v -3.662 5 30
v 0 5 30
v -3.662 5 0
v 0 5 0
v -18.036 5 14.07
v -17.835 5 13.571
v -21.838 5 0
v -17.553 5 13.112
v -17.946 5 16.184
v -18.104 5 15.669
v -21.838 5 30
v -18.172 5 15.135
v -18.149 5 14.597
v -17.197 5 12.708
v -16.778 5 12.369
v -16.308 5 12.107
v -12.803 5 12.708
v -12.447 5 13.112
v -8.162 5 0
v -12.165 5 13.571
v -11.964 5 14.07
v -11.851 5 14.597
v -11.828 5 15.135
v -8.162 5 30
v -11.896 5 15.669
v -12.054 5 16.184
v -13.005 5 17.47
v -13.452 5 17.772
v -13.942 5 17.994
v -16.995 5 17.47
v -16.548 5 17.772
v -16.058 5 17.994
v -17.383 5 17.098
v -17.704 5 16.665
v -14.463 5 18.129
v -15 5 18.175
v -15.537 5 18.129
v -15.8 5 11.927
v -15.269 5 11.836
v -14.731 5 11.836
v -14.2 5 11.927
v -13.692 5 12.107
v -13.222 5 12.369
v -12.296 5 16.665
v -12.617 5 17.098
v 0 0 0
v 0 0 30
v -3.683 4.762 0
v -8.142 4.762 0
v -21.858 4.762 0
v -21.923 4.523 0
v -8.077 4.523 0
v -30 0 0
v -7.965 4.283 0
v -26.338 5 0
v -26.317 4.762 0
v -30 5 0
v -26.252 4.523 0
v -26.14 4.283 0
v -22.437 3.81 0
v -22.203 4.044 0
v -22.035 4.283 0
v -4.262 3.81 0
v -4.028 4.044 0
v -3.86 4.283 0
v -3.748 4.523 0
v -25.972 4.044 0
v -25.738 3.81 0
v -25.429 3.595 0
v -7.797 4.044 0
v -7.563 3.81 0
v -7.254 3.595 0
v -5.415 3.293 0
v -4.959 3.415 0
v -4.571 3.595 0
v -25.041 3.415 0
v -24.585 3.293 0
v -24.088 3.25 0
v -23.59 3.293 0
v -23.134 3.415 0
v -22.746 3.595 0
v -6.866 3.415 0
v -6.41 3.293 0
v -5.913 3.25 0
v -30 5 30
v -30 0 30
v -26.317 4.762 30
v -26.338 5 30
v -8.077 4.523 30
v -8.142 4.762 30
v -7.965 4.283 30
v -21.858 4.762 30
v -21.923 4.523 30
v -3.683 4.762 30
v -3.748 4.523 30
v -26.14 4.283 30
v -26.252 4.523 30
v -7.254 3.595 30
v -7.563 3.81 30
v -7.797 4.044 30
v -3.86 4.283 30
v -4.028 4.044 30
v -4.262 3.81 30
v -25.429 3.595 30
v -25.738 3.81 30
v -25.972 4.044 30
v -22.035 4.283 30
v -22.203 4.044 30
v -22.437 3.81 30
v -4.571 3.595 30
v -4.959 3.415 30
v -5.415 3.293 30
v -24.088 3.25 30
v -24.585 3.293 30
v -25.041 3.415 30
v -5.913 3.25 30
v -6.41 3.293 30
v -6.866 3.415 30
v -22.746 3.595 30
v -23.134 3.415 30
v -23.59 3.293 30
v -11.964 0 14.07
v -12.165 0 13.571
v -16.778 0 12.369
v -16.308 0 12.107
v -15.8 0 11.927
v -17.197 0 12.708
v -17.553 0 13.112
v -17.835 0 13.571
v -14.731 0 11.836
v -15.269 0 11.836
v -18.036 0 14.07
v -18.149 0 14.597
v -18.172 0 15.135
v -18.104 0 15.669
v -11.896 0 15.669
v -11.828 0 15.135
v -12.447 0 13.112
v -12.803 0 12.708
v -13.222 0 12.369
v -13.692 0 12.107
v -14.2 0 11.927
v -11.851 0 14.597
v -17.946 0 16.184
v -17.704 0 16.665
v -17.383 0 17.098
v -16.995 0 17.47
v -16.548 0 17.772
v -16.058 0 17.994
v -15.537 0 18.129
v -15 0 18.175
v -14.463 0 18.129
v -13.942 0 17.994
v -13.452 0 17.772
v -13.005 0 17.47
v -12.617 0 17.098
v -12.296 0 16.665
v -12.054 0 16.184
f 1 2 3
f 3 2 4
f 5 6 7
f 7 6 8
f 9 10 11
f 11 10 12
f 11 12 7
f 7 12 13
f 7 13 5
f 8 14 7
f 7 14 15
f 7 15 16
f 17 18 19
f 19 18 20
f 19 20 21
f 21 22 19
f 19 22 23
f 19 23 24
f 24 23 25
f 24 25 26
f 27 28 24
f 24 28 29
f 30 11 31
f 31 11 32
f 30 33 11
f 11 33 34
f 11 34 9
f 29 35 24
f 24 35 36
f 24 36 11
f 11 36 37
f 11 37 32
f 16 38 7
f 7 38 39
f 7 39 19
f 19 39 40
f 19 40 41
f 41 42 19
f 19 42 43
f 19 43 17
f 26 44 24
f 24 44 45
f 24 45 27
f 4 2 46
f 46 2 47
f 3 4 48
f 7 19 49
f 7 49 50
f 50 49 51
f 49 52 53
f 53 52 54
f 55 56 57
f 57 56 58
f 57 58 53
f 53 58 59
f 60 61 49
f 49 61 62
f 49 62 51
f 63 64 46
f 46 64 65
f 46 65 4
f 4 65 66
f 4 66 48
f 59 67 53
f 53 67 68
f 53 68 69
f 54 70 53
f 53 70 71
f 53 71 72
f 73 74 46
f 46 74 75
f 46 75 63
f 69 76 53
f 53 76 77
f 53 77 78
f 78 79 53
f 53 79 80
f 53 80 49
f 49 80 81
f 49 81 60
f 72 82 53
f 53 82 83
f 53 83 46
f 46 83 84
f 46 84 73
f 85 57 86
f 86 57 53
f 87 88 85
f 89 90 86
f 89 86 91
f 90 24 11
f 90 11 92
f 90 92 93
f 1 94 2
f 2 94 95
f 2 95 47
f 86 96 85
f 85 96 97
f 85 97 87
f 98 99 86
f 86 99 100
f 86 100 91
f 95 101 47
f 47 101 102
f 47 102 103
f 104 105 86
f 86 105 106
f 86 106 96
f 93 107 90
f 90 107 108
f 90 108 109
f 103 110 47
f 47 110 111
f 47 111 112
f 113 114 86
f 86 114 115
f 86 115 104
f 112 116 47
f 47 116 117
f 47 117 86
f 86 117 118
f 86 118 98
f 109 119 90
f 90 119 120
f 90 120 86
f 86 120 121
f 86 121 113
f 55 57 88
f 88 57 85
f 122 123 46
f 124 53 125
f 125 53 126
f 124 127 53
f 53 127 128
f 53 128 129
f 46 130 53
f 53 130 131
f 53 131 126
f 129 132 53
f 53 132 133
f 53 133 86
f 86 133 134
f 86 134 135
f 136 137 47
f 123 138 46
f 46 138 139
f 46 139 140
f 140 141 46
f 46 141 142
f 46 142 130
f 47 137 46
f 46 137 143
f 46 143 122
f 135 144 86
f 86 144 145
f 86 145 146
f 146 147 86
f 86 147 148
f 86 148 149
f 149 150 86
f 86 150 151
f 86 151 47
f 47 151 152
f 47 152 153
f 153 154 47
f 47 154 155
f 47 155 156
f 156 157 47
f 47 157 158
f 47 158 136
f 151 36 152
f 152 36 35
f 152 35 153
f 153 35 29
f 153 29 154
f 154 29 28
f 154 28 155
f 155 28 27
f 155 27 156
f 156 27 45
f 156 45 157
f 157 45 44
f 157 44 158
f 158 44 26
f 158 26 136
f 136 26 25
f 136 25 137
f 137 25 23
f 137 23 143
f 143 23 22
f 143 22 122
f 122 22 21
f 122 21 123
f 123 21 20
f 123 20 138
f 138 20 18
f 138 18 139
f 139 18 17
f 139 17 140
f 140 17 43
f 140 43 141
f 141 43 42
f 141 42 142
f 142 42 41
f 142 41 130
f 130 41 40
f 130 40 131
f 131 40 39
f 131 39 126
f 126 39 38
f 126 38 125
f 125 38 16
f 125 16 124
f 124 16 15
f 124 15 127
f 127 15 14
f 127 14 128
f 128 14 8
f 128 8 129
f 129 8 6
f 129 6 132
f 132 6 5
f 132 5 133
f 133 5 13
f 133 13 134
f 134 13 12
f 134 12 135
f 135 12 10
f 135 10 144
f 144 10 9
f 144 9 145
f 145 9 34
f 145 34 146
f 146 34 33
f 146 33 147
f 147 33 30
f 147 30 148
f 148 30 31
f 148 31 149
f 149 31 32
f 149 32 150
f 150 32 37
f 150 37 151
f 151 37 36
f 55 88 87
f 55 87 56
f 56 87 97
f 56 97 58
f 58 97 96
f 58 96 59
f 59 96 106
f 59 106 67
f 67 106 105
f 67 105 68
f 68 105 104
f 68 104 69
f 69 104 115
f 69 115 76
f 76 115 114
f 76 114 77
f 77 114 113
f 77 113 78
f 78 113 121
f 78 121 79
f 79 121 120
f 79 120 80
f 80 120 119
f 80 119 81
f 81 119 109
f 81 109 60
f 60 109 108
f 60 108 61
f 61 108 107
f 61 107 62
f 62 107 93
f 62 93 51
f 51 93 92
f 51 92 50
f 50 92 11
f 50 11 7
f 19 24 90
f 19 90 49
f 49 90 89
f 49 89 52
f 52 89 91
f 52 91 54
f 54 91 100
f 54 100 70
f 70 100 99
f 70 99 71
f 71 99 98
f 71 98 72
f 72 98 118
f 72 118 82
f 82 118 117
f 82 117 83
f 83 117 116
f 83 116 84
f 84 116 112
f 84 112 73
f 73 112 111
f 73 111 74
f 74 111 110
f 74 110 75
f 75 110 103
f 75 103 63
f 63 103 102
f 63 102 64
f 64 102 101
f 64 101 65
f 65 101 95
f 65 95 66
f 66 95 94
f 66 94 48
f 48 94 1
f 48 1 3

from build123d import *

# Parameters (mm, degrees)
SKETCH1_W           = 30
SKETCH1_H           = 30
BOSS_EXTRUDE1_DEPTH = 5
SKETCH2_R           = 3.175
CUT_EXTRUDE1_DEPTH  = 5
SKETCH3_RX          = 2.25
SKETCH3_RY          = 1.75
CUT_EXTRUDE3_DEPTH  = 30


with BuildPart() as part:
    # Sketch1 → Boss-Extrude1 (new body)
    with BuildSketch(Plane(origin=(0, 0, 0), x_dir=(1, 0, 0), z_dir=(0, 1, 0))):
        with Locations((-15, -15)):
            Rectangle(SKETCH1_W, SKETCH1_H)
    extrude(amount=BOSS_EXTRUDE1_DEPTH)

    # Sketch2 → Cut-Extrude1 (cut)
    with BuildSketch(Plane(origin=(0, 5, 0), x_dir=(1, 0, 0), z_dir=(0, 1, 0))):
        with Locations((-15, -15)):
            Circle(SKETCH2_R)
    extrude(amount=-CUT_EXTRUDE1_DEPTH, mode=Mode.SUBTRACT)

    # Sketch3 → Cut-Extrude3 (cut)
    with BuildSketch(Plane.XY.offset(30)):
        with Locations(Location((-24.0875, 5), (0, 0, 180))):
            Ellipse(SKETCH3_RX, SKETCH3_RY)
        with Locations(Location((-5.9125, 5), (0, 0, 180))):
            Ellipse(SKETCH3_RX, SKETCH3_RY)
    extrude(amount=-CUT_EXTRUDE3_DEPTH, mode=Mode.SUBTRACT)


solid = part.part
